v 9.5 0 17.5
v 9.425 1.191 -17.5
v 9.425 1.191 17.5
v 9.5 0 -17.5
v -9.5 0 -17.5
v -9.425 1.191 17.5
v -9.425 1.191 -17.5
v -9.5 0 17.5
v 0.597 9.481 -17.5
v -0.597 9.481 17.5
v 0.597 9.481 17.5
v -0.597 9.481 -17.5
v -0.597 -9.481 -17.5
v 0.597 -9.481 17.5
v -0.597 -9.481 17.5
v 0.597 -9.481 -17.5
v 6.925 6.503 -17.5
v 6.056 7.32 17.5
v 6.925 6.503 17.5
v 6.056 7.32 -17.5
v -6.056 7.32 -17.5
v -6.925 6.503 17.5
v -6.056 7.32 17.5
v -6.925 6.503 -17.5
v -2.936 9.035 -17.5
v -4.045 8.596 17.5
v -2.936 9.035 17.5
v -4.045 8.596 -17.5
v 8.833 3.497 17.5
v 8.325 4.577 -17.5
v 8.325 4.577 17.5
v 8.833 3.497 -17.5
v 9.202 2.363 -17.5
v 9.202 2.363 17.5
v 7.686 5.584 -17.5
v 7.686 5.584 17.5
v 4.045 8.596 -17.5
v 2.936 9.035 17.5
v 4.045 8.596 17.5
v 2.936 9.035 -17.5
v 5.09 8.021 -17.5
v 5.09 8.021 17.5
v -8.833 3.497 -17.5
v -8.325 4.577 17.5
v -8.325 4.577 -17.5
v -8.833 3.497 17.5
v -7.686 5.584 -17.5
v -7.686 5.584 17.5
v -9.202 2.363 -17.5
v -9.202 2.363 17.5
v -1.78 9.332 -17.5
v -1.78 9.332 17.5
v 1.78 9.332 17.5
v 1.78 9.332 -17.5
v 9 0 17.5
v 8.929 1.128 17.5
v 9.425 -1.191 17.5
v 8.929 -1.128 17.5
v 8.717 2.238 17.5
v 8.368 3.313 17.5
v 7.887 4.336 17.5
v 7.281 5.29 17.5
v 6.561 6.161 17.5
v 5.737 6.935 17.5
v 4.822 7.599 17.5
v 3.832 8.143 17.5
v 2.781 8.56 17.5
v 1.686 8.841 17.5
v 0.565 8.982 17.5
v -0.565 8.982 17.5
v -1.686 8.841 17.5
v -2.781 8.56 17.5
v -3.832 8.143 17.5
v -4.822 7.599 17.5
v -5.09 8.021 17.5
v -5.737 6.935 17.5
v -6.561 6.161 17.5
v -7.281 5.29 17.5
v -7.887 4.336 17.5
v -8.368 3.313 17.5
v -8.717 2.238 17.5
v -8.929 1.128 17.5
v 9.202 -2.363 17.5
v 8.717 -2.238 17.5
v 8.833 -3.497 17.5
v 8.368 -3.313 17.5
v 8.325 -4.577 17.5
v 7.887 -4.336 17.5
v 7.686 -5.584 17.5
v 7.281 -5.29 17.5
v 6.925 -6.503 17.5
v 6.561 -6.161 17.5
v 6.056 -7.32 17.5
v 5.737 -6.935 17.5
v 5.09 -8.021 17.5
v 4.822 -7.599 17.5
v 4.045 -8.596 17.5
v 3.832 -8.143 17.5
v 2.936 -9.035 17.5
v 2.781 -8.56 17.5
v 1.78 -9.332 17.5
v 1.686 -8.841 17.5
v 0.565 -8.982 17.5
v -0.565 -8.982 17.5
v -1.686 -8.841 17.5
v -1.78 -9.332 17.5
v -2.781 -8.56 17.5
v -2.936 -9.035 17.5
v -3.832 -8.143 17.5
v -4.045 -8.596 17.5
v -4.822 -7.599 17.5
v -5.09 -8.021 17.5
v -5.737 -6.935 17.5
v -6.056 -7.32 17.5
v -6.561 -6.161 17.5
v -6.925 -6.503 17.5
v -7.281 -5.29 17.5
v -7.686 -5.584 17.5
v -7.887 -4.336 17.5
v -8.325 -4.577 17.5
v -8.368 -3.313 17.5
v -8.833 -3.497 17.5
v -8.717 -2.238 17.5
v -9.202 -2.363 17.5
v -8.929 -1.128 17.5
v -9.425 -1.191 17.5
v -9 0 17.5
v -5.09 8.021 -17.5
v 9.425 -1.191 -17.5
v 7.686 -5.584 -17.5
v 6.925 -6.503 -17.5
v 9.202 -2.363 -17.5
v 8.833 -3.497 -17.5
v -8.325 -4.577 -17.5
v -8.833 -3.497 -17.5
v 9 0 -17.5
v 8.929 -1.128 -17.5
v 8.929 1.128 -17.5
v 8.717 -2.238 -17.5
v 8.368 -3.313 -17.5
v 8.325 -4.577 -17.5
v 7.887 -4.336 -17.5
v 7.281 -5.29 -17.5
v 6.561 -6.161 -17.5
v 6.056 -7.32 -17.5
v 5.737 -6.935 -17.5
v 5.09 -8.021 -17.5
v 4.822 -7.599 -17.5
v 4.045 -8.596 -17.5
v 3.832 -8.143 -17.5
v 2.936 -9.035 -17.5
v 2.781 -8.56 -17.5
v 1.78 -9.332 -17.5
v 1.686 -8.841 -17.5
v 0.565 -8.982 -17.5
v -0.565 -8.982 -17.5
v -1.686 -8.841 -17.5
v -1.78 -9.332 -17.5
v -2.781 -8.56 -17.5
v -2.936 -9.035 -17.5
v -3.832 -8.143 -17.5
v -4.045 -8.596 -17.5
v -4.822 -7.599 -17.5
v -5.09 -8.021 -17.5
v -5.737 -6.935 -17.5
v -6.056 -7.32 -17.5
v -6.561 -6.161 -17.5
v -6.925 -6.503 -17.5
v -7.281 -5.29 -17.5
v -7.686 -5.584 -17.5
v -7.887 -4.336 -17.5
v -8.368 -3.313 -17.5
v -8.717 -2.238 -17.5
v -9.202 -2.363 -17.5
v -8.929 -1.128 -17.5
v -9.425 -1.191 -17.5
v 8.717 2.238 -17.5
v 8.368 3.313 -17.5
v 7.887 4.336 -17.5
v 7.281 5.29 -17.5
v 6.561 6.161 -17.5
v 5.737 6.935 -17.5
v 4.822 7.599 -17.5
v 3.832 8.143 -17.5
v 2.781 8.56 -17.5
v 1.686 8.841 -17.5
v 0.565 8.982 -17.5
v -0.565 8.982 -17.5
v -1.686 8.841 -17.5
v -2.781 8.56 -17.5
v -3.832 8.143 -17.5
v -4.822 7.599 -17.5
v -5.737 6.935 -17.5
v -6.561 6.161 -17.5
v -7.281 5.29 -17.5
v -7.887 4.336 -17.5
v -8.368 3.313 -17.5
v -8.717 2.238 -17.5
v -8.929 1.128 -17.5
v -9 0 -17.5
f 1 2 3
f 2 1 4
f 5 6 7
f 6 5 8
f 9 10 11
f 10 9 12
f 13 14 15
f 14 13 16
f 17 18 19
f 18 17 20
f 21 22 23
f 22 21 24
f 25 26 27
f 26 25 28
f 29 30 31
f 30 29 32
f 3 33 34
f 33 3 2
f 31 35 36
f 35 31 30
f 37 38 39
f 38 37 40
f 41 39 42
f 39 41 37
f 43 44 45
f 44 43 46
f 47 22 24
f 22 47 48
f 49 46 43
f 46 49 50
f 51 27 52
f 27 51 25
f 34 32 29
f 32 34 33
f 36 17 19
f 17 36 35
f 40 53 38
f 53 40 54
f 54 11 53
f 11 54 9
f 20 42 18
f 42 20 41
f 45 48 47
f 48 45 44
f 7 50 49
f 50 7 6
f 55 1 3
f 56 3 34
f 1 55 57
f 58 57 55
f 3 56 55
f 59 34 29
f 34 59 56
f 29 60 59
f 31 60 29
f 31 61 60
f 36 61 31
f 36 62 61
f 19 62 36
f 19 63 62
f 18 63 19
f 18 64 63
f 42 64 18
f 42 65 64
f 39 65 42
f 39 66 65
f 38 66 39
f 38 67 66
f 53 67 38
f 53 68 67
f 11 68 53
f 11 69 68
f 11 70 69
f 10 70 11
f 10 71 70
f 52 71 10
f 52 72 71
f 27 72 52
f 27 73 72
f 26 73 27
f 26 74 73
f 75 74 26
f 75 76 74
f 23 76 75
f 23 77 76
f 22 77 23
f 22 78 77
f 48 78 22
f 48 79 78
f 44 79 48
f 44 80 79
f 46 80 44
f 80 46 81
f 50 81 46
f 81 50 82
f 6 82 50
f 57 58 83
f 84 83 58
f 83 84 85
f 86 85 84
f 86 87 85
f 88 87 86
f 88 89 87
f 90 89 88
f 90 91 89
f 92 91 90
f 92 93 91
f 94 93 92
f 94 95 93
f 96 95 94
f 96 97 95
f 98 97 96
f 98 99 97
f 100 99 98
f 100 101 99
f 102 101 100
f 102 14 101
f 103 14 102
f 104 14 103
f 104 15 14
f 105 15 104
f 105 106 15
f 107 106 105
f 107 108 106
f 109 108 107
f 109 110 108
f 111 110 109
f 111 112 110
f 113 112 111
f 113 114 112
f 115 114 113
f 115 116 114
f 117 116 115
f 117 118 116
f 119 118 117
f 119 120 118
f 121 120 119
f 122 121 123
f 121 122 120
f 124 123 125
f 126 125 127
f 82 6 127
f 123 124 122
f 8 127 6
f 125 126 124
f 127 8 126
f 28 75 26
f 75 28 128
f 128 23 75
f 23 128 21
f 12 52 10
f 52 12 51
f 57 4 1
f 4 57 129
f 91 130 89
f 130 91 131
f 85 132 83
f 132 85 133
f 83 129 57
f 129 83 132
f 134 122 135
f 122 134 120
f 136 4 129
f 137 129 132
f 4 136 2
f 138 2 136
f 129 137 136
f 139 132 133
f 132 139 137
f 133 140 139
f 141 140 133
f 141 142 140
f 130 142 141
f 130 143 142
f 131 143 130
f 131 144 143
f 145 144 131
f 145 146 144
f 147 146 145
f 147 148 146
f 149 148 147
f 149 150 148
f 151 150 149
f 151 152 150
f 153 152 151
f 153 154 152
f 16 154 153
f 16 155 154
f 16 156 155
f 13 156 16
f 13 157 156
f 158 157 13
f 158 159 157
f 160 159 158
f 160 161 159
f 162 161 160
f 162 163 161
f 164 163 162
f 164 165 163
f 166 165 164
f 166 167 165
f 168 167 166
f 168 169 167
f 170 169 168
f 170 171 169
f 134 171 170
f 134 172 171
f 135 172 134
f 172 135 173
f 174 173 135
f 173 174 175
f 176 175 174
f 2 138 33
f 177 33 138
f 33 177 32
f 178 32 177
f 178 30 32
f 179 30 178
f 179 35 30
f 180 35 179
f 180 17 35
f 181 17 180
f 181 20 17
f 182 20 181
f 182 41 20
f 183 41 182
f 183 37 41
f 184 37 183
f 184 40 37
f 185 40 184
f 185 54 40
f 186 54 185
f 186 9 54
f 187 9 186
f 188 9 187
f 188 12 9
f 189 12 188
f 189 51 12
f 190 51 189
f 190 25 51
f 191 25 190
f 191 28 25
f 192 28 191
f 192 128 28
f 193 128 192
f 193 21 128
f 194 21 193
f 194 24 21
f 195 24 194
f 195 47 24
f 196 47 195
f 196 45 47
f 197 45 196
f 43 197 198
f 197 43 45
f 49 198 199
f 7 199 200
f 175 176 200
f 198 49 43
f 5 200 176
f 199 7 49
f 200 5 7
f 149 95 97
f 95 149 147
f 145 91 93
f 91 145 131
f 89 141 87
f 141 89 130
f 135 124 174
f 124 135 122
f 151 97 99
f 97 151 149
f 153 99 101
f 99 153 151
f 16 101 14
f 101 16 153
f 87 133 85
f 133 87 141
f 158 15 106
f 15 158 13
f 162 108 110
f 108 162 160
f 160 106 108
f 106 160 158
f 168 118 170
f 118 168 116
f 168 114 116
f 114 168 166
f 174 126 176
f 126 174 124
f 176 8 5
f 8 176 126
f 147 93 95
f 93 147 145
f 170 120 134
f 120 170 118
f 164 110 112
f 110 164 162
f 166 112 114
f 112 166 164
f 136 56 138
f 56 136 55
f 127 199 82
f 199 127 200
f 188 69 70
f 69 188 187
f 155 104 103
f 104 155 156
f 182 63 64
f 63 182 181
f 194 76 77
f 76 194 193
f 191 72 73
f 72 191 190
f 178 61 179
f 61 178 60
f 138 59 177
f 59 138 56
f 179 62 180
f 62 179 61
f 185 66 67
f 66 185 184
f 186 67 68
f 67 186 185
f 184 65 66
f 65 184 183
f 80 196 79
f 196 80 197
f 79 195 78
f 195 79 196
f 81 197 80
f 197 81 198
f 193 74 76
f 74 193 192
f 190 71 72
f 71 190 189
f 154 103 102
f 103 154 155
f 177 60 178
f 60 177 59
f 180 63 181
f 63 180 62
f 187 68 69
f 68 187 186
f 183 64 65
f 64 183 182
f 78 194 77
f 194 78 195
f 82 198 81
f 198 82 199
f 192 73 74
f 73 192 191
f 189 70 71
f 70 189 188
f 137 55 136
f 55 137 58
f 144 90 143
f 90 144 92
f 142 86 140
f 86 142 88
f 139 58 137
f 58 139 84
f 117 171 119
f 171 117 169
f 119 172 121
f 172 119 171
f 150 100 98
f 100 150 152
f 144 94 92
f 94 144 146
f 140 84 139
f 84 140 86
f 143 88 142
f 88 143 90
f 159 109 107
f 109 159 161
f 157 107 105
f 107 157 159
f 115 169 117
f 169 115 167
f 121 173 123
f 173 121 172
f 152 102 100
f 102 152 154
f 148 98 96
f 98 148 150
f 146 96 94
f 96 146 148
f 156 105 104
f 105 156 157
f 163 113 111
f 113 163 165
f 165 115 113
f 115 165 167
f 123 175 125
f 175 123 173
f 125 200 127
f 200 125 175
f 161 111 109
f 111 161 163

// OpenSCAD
$fn = 50;


difference() {
	union() {
		translate(v = [0, 0, -17.5000000000]) {
			cylinder(h = 35, r = 9.5000000000);
		}
	}
	union() {
		translate(v = [0, 0, -100.0000000000]) {
			cylinder(h = 200, r = 9);
		}
	}
}
